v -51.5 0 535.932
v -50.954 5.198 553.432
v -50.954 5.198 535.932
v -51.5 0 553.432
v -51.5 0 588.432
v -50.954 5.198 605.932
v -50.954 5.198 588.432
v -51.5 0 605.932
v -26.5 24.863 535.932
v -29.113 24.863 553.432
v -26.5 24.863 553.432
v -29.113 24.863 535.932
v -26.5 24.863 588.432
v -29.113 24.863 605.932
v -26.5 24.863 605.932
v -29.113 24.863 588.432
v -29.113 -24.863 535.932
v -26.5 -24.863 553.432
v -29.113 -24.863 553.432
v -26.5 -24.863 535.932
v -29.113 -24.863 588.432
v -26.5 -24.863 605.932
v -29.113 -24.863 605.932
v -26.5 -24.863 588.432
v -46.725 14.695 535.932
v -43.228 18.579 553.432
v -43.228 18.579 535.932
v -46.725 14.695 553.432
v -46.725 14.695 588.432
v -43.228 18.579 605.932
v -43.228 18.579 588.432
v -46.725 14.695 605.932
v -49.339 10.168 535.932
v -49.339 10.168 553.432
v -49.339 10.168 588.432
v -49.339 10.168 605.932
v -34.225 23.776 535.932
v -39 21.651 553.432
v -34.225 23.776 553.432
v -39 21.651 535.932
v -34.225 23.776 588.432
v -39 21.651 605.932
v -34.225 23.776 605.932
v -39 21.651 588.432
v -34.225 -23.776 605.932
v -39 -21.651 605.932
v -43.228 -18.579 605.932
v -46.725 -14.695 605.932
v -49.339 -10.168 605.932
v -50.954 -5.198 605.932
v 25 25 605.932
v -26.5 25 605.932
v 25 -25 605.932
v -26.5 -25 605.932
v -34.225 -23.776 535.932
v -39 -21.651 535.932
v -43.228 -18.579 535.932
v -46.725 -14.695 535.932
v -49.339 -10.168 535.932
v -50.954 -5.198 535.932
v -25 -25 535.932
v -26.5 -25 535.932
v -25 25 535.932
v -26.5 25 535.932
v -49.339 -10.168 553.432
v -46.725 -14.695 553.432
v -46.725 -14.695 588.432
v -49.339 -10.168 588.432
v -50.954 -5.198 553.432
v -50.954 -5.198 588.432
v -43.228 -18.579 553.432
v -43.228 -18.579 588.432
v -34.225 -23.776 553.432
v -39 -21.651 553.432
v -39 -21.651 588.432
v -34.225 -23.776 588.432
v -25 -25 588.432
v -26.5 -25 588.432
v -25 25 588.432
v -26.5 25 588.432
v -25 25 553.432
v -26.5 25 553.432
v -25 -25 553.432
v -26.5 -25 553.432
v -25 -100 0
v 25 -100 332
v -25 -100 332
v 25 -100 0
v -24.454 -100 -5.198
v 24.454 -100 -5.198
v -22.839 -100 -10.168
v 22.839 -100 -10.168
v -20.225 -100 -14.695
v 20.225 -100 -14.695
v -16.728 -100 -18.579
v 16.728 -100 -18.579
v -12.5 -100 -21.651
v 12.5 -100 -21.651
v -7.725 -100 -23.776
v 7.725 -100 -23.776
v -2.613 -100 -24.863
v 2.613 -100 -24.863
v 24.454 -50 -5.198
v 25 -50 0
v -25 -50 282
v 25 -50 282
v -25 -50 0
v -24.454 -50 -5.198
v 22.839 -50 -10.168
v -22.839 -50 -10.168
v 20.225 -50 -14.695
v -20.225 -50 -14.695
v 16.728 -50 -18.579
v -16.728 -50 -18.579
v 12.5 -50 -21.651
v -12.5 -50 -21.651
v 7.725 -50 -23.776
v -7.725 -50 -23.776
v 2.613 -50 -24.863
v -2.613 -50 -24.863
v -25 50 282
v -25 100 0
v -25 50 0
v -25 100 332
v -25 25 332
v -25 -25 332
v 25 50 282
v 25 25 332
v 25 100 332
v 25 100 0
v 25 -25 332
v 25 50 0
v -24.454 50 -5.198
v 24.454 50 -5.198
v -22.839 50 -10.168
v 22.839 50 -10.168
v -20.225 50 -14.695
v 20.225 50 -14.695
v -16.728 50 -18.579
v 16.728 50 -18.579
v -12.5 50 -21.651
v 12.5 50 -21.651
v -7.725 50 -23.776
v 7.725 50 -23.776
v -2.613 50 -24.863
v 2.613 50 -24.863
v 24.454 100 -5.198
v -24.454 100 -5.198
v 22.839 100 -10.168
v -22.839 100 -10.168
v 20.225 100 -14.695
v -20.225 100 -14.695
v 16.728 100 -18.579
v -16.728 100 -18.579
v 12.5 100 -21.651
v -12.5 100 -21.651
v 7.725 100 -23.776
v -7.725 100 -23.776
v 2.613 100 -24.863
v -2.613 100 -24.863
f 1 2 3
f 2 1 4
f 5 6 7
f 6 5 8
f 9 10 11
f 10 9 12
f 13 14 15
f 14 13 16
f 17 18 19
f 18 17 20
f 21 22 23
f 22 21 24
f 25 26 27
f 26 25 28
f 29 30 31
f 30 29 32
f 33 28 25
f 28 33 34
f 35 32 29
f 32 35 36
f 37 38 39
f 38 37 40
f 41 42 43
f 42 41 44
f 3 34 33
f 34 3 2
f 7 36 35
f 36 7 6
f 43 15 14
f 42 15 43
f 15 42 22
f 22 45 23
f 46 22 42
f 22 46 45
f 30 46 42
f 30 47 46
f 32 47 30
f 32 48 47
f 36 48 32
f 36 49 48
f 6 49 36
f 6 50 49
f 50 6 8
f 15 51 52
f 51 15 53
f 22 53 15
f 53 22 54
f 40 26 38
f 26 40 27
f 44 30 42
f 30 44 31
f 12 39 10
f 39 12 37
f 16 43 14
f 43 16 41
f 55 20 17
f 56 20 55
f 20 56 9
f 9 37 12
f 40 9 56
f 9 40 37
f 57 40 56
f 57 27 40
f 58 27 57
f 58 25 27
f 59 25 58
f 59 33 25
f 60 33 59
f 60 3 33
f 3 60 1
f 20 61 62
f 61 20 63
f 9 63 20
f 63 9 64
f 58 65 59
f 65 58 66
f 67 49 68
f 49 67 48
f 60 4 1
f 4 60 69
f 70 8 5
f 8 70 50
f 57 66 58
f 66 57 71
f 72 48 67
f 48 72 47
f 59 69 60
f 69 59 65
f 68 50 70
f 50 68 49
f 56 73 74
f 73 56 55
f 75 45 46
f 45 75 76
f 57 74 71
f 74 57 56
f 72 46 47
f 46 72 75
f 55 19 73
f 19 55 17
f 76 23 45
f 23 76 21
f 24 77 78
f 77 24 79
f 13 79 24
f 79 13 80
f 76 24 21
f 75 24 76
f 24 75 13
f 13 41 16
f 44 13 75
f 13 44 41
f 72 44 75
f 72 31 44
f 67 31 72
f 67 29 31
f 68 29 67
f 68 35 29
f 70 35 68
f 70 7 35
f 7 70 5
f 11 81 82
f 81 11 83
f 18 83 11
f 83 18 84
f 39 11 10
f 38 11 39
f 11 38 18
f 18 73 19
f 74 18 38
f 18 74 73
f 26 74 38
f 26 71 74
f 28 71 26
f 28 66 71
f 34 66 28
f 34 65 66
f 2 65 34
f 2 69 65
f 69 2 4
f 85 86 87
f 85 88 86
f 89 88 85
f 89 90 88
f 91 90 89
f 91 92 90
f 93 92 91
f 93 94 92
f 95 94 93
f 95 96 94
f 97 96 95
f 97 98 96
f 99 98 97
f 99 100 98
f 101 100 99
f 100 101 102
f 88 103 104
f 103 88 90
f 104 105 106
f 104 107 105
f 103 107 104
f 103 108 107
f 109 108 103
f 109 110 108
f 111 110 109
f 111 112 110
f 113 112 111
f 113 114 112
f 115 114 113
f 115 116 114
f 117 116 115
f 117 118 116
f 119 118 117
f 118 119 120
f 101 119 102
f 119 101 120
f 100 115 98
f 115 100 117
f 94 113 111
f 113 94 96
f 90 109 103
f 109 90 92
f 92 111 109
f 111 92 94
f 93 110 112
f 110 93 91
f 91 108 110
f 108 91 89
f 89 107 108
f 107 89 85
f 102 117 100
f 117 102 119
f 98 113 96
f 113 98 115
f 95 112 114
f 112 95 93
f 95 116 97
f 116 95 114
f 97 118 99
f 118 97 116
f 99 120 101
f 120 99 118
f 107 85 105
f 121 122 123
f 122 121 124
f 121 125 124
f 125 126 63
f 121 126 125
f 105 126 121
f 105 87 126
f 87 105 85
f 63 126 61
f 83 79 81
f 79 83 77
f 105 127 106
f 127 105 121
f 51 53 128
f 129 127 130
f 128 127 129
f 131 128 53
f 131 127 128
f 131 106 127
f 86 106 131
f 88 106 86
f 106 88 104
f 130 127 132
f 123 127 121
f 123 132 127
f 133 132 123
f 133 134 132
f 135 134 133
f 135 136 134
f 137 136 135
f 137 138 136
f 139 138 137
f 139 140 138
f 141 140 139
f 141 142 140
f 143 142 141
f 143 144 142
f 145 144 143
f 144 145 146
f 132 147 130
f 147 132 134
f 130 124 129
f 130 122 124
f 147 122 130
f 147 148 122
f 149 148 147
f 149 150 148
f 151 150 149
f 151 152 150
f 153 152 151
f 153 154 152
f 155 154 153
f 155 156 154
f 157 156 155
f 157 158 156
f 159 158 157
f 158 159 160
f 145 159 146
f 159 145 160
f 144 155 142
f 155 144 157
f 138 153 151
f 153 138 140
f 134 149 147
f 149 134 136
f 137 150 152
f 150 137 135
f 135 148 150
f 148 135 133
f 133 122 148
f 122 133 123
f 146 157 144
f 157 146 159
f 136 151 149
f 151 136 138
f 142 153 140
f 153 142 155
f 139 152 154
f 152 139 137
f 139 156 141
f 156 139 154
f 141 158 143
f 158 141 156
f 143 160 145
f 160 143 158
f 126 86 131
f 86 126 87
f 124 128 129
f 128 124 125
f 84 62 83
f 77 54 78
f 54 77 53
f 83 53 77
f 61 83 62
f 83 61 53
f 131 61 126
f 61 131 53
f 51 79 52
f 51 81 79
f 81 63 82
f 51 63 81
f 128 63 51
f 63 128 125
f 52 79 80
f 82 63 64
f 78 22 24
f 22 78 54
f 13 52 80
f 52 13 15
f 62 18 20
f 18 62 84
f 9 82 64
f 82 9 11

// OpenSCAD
module front_chassis(
    front_crown_radius = 50,
    front_radius = 232,
    rear_crown_radius = 70,
    rear_radius = 227,
    rake = 26.5,
    caster = 24,
    wheelbase = 1370
) {
    d_radius = (front_radius + front_crown_radius)
             - (rear_radius + rear_crown_radius);

    fork_length = front_radius + 2 * front_crown_radius;
    front_chassis_length = wheelbase*sin(caster) - d_radius*cos(caster);
    head_tube_length = front_chassis_length - fork_length + rear_crown_radius/2;

    // Left fork lower
    translate([0, -1.5 * front_crown_radius, 0])
        rotate([90, 0, 0])
            cylinder(
                h = front_crown_radius,
                r = front_crown_radius / 2,
                center = true
            );

    // Left fork leg
    translate([
        0,
        -1.5 * front_crown_radius,
        (front_radius + front_crown_radius) / 2
    ])
        cube([
            front_crown_radius,
            front_crown_radius,
            front_radius + front_crown_radius
        ], center = true);

    // Right fork lower
    translate([0, 1.5 * front_crown_radius, 0])
        rotate([90, 0, 0])
            cylinder(
                h = front_crown_radius,
                r = front_crown_radius / 2,
                center = true
            );

    // Right fork leg
    translate([
        0,
        1.5 * front_crown_radius,
        (front_radius + front_crown_radius) / 2
    ])
        cube([
            front_crown_radius,
            front_crown_radius,
            front_radius + front_crown_radius
        ], center = true);

    // Fork crown
    translate([0, 0, front_radius + 1.5 * front_crown_radius])
        cube([
            front_crown_radius,
            4 * front_crown_radius,
            front_crown_radius
        ], center = true);

    // Head tube
    translate([
        0,
        0,
        head_tube_length / 2 + front_radius + 2 * front_crown_radius
    ])
        cube([
            front_crown_radius,
            front_crown_radius,
            head_tube_length
        ], center = true);
        
    // knuckle
    translate([
            -(rake - front_crown_radius)/2,
            0,
            fork_length + head_tube_length - rear_crown_radius/2
        ])
            cube([rake,front_crown_radius,rear_crown_radius],center = true);
    
    translate([
            -(rake)/2,
            0,
            fork_length + head_tube_length - rear_crown_radius/8
        ])
            cube([rake,front_crown_radius,rear_crown_radius/4],center = true);
            
    translate([
            -(rake)/2,
            0,
            fork_length + head_tube_length - rear_crown_radius + rear_crown_radius/8
        ])
            cube([rake,front_crown_radius,rear_crown_radius/4],center = true);
        
    // Steering joint
    difference() {
        translate([
            -rake,
            0,
            fork_length + head_tube_length - rear_crown_radius/2
        ])
            cylinder(h = rear_crown_radius, r = front_crown_radius/2 ,center = true);
            
        translate([
            -rake,
            0,
            fork_length + head_tube_length - rear_crown_radius/2
        ])
            cylinder(h = rear_crown_radius/2, r = front_crown_radius ,center = true);
    }
}

//rotate([0,-24,0])
front_chassis();
